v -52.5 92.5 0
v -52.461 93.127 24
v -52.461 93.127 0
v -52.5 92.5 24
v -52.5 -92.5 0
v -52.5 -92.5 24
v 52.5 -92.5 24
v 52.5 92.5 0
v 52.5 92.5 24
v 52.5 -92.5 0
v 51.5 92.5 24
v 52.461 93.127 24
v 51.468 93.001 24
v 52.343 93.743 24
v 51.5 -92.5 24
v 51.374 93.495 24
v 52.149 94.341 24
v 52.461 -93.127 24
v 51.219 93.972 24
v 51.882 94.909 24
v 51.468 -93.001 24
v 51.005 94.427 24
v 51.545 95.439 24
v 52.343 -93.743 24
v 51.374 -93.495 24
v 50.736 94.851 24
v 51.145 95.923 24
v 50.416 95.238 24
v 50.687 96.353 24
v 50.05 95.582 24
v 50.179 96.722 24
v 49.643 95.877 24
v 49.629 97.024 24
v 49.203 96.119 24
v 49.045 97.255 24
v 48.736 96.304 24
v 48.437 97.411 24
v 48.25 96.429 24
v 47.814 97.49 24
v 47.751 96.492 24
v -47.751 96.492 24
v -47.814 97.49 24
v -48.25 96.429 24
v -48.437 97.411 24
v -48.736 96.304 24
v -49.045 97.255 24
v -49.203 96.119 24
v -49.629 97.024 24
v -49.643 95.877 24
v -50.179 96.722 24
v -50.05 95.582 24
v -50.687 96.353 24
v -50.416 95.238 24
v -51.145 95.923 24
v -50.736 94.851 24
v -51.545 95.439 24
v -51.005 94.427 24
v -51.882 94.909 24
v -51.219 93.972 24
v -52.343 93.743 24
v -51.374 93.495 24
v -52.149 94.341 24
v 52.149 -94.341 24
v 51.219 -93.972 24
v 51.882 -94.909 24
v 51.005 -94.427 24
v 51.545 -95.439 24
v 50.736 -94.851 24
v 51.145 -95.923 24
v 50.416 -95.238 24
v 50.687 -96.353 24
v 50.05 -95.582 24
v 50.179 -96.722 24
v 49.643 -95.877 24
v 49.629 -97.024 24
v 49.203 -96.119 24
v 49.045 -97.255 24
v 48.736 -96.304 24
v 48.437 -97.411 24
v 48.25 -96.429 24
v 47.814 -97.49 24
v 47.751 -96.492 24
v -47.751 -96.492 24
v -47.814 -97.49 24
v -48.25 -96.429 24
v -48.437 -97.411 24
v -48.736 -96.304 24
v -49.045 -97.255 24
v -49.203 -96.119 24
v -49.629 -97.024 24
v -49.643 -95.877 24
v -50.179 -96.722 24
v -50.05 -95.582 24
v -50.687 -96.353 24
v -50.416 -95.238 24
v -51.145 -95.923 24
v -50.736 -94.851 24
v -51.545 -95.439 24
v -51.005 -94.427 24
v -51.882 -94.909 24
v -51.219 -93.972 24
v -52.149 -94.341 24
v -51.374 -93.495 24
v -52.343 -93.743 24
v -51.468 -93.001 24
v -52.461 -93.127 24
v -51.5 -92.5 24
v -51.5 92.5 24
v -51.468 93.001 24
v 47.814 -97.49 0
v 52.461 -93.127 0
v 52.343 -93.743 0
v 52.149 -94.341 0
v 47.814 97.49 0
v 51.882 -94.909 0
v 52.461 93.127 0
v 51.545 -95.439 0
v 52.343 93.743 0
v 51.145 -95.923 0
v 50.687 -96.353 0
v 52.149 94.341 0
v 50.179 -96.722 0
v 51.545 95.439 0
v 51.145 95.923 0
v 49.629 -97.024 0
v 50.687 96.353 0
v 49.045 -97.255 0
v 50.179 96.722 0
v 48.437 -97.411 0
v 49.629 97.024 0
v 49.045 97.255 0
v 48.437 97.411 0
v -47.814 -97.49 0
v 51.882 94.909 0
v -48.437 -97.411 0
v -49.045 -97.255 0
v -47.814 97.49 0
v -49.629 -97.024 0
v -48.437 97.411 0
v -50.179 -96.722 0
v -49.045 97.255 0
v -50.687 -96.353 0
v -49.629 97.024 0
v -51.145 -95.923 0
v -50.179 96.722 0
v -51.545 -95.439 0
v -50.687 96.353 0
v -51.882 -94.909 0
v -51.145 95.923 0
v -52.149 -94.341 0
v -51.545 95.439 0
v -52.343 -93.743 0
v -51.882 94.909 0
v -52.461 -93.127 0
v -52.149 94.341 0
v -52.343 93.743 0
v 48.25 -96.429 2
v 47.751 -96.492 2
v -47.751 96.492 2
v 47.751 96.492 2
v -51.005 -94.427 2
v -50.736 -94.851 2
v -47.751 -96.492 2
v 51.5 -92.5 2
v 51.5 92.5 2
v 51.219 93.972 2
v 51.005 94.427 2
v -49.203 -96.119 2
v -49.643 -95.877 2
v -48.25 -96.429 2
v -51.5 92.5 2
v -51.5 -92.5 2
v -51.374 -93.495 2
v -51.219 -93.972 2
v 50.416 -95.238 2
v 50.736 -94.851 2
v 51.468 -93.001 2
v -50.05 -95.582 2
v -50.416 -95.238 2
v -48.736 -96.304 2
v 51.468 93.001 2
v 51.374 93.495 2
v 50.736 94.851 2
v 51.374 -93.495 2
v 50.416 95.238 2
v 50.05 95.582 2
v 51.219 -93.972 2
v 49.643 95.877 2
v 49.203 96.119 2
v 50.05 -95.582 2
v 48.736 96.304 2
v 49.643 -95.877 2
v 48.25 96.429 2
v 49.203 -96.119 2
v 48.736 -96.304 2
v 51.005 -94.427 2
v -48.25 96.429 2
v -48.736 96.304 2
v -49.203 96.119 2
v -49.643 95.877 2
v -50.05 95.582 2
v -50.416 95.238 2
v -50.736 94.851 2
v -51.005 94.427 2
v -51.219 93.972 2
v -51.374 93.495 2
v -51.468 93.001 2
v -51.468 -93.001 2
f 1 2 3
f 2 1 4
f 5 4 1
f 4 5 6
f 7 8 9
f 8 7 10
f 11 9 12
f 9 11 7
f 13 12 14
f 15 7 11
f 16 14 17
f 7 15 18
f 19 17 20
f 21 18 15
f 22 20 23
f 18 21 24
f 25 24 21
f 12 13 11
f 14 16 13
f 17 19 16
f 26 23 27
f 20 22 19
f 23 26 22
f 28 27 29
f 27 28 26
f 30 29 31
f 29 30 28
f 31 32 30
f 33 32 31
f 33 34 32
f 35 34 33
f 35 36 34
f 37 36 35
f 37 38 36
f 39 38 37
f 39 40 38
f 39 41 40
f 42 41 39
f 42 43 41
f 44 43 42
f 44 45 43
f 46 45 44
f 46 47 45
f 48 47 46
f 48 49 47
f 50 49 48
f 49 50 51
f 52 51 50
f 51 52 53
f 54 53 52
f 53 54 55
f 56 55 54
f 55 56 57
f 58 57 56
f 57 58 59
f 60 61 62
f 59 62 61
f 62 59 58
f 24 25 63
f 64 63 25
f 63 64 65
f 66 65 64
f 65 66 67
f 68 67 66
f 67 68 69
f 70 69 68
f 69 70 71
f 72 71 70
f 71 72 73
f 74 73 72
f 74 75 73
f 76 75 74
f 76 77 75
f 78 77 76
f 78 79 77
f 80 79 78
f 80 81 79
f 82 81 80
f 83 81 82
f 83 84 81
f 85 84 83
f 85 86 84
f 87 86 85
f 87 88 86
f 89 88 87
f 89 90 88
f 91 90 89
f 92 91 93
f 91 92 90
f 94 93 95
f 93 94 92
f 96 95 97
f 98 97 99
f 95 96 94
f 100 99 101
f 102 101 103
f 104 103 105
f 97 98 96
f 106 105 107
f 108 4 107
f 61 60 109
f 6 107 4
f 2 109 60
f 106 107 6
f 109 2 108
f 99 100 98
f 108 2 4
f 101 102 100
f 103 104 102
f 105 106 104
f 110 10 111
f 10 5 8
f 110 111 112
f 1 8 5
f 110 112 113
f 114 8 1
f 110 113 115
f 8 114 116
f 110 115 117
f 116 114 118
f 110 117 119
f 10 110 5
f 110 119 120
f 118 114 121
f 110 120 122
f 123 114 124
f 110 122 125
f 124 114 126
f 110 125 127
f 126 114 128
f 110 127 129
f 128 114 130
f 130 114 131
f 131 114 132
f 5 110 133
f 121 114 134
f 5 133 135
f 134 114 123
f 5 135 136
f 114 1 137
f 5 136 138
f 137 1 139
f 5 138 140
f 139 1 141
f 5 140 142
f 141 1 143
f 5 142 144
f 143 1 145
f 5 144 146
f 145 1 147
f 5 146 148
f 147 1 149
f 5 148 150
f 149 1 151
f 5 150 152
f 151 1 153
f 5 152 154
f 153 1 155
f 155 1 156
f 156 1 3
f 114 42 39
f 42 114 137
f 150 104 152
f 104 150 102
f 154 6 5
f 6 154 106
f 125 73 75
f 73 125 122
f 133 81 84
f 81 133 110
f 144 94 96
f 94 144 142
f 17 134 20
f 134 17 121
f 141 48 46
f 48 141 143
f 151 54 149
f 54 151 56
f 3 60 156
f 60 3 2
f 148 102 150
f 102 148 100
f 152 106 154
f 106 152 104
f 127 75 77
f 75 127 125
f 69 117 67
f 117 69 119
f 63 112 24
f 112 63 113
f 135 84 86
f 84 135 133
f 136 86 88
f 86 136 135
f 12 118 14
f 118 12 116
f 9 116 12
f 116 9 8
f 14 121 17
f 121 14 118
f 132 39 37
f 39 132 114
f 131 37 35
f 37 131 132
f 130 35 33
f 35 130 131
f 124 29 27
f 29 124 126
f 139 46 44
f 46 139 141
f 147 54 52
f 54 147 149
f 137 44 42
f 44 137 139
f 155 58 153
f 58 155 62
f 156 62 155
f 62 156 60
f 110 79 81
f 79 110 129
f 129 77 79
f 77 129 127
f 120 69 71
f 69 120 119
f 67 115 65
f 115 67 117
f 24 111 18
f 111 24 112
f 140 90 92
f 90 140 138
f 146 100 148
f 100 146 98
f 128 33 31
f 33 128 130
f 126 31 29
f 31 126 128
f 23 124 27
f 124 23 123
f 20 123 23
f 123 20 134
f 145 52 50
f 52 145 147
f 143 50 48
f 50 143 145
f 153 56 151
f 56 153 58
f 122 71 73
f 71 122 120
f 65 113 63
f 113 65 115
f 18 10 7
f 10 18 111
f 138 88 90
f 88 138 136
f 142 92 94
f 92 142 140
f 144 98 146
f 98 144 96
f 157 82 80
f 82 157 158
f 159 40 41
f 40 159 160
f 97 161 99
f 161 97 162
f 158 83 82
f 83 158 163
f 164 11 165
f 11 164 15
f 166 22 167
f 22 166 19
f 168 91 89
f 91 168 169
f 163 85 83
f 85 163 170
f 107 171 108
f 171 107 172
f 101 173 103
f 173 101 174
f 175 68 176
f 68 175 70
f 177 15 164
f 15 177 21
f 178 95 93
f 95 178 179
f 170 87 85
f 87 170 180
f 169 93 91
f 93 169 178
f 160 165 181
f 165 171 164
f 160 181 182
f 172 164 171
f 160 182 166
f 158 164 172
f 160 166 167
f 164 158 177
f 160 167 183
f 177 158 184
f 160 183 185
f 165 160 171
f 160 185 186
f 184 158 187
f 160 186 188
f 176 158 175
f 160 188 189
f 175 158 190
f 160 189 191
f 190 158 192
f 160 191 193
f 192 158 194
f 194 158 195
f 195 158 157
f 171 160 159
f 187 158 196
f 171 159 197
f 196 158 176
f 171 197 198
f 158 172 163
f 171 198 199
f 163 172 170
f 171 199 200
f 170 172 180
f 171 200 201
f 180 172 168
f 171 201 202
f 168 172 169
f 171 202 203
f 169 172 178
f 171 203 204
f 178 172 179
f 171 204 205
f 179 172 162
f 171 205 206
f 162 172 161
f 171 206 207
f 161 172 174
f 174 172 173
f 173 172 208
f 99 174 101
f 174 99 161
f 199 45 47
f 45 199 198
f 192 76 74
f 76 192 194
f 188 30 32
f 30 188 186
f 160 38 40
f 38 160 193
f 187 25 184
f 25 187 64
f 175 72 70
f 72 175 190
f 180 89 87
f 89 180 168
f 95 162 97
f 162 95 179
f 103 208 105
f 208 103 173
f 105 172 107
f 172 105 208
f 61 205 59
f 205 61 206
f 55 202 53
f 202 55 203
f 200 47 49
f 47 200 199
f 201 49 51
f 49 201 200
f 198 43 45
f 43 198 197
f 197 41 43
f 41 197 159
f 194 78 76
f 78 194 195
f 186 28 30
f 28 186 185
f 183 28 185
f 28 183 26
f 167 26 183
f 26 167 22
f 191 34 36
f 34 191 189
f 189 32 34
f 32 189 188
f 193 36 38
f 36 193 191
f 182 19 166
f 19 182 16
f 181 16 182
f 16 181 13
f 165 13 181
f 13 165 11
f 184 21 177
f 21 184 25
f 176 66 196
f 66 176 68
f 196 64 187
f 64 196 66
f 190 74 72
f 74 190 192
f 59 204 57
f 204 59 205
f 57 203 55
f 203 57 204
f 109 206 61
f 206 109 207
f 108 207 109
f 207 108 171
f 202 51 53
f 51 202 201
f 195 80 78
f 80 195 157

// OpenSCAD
$fn = 50;


difference() {
	union() {
		hull() {
			translate(v = [-47.5000000000, 92.5000000000, 0]) {
				cylinder(h = 24, r = 5);
			}
			translate(v = [47.5000000000, 92.5000000000, 0]) {
				cylinder(h = 24, r = 5);
			}
			translate(v = [-47.5000000000, -92.5000000000, 0]) {
				cylinder(h = 24, r = 5);
			}
			translate(v = [47.5000000000, -92.5000000000, 0]) {
				cylinder(h = 24, r = 5);
			}
		}
	}
	union() {
		translate(v = [0, 0, 2]) {
			hull() {
				translate(v = [-47.5000000000, 92.5000000000, 0]) {
					cylinder(h = 22, r = 4);
				}
				translate(v = [47.5000000000, 92.5000000000, 0]) {
					cylinder(h = 22, r = 4);
				}
				translate(v = [-47.5000000000, -92.5000000000, 0]) {
					cylinder(h = 22, r = 4);
				}
				translate(v = [47.5000000000, -92.5000000000, 0]) {
					cylinder(h = 22, r = 4);
				}
			}
		}
	}
}
